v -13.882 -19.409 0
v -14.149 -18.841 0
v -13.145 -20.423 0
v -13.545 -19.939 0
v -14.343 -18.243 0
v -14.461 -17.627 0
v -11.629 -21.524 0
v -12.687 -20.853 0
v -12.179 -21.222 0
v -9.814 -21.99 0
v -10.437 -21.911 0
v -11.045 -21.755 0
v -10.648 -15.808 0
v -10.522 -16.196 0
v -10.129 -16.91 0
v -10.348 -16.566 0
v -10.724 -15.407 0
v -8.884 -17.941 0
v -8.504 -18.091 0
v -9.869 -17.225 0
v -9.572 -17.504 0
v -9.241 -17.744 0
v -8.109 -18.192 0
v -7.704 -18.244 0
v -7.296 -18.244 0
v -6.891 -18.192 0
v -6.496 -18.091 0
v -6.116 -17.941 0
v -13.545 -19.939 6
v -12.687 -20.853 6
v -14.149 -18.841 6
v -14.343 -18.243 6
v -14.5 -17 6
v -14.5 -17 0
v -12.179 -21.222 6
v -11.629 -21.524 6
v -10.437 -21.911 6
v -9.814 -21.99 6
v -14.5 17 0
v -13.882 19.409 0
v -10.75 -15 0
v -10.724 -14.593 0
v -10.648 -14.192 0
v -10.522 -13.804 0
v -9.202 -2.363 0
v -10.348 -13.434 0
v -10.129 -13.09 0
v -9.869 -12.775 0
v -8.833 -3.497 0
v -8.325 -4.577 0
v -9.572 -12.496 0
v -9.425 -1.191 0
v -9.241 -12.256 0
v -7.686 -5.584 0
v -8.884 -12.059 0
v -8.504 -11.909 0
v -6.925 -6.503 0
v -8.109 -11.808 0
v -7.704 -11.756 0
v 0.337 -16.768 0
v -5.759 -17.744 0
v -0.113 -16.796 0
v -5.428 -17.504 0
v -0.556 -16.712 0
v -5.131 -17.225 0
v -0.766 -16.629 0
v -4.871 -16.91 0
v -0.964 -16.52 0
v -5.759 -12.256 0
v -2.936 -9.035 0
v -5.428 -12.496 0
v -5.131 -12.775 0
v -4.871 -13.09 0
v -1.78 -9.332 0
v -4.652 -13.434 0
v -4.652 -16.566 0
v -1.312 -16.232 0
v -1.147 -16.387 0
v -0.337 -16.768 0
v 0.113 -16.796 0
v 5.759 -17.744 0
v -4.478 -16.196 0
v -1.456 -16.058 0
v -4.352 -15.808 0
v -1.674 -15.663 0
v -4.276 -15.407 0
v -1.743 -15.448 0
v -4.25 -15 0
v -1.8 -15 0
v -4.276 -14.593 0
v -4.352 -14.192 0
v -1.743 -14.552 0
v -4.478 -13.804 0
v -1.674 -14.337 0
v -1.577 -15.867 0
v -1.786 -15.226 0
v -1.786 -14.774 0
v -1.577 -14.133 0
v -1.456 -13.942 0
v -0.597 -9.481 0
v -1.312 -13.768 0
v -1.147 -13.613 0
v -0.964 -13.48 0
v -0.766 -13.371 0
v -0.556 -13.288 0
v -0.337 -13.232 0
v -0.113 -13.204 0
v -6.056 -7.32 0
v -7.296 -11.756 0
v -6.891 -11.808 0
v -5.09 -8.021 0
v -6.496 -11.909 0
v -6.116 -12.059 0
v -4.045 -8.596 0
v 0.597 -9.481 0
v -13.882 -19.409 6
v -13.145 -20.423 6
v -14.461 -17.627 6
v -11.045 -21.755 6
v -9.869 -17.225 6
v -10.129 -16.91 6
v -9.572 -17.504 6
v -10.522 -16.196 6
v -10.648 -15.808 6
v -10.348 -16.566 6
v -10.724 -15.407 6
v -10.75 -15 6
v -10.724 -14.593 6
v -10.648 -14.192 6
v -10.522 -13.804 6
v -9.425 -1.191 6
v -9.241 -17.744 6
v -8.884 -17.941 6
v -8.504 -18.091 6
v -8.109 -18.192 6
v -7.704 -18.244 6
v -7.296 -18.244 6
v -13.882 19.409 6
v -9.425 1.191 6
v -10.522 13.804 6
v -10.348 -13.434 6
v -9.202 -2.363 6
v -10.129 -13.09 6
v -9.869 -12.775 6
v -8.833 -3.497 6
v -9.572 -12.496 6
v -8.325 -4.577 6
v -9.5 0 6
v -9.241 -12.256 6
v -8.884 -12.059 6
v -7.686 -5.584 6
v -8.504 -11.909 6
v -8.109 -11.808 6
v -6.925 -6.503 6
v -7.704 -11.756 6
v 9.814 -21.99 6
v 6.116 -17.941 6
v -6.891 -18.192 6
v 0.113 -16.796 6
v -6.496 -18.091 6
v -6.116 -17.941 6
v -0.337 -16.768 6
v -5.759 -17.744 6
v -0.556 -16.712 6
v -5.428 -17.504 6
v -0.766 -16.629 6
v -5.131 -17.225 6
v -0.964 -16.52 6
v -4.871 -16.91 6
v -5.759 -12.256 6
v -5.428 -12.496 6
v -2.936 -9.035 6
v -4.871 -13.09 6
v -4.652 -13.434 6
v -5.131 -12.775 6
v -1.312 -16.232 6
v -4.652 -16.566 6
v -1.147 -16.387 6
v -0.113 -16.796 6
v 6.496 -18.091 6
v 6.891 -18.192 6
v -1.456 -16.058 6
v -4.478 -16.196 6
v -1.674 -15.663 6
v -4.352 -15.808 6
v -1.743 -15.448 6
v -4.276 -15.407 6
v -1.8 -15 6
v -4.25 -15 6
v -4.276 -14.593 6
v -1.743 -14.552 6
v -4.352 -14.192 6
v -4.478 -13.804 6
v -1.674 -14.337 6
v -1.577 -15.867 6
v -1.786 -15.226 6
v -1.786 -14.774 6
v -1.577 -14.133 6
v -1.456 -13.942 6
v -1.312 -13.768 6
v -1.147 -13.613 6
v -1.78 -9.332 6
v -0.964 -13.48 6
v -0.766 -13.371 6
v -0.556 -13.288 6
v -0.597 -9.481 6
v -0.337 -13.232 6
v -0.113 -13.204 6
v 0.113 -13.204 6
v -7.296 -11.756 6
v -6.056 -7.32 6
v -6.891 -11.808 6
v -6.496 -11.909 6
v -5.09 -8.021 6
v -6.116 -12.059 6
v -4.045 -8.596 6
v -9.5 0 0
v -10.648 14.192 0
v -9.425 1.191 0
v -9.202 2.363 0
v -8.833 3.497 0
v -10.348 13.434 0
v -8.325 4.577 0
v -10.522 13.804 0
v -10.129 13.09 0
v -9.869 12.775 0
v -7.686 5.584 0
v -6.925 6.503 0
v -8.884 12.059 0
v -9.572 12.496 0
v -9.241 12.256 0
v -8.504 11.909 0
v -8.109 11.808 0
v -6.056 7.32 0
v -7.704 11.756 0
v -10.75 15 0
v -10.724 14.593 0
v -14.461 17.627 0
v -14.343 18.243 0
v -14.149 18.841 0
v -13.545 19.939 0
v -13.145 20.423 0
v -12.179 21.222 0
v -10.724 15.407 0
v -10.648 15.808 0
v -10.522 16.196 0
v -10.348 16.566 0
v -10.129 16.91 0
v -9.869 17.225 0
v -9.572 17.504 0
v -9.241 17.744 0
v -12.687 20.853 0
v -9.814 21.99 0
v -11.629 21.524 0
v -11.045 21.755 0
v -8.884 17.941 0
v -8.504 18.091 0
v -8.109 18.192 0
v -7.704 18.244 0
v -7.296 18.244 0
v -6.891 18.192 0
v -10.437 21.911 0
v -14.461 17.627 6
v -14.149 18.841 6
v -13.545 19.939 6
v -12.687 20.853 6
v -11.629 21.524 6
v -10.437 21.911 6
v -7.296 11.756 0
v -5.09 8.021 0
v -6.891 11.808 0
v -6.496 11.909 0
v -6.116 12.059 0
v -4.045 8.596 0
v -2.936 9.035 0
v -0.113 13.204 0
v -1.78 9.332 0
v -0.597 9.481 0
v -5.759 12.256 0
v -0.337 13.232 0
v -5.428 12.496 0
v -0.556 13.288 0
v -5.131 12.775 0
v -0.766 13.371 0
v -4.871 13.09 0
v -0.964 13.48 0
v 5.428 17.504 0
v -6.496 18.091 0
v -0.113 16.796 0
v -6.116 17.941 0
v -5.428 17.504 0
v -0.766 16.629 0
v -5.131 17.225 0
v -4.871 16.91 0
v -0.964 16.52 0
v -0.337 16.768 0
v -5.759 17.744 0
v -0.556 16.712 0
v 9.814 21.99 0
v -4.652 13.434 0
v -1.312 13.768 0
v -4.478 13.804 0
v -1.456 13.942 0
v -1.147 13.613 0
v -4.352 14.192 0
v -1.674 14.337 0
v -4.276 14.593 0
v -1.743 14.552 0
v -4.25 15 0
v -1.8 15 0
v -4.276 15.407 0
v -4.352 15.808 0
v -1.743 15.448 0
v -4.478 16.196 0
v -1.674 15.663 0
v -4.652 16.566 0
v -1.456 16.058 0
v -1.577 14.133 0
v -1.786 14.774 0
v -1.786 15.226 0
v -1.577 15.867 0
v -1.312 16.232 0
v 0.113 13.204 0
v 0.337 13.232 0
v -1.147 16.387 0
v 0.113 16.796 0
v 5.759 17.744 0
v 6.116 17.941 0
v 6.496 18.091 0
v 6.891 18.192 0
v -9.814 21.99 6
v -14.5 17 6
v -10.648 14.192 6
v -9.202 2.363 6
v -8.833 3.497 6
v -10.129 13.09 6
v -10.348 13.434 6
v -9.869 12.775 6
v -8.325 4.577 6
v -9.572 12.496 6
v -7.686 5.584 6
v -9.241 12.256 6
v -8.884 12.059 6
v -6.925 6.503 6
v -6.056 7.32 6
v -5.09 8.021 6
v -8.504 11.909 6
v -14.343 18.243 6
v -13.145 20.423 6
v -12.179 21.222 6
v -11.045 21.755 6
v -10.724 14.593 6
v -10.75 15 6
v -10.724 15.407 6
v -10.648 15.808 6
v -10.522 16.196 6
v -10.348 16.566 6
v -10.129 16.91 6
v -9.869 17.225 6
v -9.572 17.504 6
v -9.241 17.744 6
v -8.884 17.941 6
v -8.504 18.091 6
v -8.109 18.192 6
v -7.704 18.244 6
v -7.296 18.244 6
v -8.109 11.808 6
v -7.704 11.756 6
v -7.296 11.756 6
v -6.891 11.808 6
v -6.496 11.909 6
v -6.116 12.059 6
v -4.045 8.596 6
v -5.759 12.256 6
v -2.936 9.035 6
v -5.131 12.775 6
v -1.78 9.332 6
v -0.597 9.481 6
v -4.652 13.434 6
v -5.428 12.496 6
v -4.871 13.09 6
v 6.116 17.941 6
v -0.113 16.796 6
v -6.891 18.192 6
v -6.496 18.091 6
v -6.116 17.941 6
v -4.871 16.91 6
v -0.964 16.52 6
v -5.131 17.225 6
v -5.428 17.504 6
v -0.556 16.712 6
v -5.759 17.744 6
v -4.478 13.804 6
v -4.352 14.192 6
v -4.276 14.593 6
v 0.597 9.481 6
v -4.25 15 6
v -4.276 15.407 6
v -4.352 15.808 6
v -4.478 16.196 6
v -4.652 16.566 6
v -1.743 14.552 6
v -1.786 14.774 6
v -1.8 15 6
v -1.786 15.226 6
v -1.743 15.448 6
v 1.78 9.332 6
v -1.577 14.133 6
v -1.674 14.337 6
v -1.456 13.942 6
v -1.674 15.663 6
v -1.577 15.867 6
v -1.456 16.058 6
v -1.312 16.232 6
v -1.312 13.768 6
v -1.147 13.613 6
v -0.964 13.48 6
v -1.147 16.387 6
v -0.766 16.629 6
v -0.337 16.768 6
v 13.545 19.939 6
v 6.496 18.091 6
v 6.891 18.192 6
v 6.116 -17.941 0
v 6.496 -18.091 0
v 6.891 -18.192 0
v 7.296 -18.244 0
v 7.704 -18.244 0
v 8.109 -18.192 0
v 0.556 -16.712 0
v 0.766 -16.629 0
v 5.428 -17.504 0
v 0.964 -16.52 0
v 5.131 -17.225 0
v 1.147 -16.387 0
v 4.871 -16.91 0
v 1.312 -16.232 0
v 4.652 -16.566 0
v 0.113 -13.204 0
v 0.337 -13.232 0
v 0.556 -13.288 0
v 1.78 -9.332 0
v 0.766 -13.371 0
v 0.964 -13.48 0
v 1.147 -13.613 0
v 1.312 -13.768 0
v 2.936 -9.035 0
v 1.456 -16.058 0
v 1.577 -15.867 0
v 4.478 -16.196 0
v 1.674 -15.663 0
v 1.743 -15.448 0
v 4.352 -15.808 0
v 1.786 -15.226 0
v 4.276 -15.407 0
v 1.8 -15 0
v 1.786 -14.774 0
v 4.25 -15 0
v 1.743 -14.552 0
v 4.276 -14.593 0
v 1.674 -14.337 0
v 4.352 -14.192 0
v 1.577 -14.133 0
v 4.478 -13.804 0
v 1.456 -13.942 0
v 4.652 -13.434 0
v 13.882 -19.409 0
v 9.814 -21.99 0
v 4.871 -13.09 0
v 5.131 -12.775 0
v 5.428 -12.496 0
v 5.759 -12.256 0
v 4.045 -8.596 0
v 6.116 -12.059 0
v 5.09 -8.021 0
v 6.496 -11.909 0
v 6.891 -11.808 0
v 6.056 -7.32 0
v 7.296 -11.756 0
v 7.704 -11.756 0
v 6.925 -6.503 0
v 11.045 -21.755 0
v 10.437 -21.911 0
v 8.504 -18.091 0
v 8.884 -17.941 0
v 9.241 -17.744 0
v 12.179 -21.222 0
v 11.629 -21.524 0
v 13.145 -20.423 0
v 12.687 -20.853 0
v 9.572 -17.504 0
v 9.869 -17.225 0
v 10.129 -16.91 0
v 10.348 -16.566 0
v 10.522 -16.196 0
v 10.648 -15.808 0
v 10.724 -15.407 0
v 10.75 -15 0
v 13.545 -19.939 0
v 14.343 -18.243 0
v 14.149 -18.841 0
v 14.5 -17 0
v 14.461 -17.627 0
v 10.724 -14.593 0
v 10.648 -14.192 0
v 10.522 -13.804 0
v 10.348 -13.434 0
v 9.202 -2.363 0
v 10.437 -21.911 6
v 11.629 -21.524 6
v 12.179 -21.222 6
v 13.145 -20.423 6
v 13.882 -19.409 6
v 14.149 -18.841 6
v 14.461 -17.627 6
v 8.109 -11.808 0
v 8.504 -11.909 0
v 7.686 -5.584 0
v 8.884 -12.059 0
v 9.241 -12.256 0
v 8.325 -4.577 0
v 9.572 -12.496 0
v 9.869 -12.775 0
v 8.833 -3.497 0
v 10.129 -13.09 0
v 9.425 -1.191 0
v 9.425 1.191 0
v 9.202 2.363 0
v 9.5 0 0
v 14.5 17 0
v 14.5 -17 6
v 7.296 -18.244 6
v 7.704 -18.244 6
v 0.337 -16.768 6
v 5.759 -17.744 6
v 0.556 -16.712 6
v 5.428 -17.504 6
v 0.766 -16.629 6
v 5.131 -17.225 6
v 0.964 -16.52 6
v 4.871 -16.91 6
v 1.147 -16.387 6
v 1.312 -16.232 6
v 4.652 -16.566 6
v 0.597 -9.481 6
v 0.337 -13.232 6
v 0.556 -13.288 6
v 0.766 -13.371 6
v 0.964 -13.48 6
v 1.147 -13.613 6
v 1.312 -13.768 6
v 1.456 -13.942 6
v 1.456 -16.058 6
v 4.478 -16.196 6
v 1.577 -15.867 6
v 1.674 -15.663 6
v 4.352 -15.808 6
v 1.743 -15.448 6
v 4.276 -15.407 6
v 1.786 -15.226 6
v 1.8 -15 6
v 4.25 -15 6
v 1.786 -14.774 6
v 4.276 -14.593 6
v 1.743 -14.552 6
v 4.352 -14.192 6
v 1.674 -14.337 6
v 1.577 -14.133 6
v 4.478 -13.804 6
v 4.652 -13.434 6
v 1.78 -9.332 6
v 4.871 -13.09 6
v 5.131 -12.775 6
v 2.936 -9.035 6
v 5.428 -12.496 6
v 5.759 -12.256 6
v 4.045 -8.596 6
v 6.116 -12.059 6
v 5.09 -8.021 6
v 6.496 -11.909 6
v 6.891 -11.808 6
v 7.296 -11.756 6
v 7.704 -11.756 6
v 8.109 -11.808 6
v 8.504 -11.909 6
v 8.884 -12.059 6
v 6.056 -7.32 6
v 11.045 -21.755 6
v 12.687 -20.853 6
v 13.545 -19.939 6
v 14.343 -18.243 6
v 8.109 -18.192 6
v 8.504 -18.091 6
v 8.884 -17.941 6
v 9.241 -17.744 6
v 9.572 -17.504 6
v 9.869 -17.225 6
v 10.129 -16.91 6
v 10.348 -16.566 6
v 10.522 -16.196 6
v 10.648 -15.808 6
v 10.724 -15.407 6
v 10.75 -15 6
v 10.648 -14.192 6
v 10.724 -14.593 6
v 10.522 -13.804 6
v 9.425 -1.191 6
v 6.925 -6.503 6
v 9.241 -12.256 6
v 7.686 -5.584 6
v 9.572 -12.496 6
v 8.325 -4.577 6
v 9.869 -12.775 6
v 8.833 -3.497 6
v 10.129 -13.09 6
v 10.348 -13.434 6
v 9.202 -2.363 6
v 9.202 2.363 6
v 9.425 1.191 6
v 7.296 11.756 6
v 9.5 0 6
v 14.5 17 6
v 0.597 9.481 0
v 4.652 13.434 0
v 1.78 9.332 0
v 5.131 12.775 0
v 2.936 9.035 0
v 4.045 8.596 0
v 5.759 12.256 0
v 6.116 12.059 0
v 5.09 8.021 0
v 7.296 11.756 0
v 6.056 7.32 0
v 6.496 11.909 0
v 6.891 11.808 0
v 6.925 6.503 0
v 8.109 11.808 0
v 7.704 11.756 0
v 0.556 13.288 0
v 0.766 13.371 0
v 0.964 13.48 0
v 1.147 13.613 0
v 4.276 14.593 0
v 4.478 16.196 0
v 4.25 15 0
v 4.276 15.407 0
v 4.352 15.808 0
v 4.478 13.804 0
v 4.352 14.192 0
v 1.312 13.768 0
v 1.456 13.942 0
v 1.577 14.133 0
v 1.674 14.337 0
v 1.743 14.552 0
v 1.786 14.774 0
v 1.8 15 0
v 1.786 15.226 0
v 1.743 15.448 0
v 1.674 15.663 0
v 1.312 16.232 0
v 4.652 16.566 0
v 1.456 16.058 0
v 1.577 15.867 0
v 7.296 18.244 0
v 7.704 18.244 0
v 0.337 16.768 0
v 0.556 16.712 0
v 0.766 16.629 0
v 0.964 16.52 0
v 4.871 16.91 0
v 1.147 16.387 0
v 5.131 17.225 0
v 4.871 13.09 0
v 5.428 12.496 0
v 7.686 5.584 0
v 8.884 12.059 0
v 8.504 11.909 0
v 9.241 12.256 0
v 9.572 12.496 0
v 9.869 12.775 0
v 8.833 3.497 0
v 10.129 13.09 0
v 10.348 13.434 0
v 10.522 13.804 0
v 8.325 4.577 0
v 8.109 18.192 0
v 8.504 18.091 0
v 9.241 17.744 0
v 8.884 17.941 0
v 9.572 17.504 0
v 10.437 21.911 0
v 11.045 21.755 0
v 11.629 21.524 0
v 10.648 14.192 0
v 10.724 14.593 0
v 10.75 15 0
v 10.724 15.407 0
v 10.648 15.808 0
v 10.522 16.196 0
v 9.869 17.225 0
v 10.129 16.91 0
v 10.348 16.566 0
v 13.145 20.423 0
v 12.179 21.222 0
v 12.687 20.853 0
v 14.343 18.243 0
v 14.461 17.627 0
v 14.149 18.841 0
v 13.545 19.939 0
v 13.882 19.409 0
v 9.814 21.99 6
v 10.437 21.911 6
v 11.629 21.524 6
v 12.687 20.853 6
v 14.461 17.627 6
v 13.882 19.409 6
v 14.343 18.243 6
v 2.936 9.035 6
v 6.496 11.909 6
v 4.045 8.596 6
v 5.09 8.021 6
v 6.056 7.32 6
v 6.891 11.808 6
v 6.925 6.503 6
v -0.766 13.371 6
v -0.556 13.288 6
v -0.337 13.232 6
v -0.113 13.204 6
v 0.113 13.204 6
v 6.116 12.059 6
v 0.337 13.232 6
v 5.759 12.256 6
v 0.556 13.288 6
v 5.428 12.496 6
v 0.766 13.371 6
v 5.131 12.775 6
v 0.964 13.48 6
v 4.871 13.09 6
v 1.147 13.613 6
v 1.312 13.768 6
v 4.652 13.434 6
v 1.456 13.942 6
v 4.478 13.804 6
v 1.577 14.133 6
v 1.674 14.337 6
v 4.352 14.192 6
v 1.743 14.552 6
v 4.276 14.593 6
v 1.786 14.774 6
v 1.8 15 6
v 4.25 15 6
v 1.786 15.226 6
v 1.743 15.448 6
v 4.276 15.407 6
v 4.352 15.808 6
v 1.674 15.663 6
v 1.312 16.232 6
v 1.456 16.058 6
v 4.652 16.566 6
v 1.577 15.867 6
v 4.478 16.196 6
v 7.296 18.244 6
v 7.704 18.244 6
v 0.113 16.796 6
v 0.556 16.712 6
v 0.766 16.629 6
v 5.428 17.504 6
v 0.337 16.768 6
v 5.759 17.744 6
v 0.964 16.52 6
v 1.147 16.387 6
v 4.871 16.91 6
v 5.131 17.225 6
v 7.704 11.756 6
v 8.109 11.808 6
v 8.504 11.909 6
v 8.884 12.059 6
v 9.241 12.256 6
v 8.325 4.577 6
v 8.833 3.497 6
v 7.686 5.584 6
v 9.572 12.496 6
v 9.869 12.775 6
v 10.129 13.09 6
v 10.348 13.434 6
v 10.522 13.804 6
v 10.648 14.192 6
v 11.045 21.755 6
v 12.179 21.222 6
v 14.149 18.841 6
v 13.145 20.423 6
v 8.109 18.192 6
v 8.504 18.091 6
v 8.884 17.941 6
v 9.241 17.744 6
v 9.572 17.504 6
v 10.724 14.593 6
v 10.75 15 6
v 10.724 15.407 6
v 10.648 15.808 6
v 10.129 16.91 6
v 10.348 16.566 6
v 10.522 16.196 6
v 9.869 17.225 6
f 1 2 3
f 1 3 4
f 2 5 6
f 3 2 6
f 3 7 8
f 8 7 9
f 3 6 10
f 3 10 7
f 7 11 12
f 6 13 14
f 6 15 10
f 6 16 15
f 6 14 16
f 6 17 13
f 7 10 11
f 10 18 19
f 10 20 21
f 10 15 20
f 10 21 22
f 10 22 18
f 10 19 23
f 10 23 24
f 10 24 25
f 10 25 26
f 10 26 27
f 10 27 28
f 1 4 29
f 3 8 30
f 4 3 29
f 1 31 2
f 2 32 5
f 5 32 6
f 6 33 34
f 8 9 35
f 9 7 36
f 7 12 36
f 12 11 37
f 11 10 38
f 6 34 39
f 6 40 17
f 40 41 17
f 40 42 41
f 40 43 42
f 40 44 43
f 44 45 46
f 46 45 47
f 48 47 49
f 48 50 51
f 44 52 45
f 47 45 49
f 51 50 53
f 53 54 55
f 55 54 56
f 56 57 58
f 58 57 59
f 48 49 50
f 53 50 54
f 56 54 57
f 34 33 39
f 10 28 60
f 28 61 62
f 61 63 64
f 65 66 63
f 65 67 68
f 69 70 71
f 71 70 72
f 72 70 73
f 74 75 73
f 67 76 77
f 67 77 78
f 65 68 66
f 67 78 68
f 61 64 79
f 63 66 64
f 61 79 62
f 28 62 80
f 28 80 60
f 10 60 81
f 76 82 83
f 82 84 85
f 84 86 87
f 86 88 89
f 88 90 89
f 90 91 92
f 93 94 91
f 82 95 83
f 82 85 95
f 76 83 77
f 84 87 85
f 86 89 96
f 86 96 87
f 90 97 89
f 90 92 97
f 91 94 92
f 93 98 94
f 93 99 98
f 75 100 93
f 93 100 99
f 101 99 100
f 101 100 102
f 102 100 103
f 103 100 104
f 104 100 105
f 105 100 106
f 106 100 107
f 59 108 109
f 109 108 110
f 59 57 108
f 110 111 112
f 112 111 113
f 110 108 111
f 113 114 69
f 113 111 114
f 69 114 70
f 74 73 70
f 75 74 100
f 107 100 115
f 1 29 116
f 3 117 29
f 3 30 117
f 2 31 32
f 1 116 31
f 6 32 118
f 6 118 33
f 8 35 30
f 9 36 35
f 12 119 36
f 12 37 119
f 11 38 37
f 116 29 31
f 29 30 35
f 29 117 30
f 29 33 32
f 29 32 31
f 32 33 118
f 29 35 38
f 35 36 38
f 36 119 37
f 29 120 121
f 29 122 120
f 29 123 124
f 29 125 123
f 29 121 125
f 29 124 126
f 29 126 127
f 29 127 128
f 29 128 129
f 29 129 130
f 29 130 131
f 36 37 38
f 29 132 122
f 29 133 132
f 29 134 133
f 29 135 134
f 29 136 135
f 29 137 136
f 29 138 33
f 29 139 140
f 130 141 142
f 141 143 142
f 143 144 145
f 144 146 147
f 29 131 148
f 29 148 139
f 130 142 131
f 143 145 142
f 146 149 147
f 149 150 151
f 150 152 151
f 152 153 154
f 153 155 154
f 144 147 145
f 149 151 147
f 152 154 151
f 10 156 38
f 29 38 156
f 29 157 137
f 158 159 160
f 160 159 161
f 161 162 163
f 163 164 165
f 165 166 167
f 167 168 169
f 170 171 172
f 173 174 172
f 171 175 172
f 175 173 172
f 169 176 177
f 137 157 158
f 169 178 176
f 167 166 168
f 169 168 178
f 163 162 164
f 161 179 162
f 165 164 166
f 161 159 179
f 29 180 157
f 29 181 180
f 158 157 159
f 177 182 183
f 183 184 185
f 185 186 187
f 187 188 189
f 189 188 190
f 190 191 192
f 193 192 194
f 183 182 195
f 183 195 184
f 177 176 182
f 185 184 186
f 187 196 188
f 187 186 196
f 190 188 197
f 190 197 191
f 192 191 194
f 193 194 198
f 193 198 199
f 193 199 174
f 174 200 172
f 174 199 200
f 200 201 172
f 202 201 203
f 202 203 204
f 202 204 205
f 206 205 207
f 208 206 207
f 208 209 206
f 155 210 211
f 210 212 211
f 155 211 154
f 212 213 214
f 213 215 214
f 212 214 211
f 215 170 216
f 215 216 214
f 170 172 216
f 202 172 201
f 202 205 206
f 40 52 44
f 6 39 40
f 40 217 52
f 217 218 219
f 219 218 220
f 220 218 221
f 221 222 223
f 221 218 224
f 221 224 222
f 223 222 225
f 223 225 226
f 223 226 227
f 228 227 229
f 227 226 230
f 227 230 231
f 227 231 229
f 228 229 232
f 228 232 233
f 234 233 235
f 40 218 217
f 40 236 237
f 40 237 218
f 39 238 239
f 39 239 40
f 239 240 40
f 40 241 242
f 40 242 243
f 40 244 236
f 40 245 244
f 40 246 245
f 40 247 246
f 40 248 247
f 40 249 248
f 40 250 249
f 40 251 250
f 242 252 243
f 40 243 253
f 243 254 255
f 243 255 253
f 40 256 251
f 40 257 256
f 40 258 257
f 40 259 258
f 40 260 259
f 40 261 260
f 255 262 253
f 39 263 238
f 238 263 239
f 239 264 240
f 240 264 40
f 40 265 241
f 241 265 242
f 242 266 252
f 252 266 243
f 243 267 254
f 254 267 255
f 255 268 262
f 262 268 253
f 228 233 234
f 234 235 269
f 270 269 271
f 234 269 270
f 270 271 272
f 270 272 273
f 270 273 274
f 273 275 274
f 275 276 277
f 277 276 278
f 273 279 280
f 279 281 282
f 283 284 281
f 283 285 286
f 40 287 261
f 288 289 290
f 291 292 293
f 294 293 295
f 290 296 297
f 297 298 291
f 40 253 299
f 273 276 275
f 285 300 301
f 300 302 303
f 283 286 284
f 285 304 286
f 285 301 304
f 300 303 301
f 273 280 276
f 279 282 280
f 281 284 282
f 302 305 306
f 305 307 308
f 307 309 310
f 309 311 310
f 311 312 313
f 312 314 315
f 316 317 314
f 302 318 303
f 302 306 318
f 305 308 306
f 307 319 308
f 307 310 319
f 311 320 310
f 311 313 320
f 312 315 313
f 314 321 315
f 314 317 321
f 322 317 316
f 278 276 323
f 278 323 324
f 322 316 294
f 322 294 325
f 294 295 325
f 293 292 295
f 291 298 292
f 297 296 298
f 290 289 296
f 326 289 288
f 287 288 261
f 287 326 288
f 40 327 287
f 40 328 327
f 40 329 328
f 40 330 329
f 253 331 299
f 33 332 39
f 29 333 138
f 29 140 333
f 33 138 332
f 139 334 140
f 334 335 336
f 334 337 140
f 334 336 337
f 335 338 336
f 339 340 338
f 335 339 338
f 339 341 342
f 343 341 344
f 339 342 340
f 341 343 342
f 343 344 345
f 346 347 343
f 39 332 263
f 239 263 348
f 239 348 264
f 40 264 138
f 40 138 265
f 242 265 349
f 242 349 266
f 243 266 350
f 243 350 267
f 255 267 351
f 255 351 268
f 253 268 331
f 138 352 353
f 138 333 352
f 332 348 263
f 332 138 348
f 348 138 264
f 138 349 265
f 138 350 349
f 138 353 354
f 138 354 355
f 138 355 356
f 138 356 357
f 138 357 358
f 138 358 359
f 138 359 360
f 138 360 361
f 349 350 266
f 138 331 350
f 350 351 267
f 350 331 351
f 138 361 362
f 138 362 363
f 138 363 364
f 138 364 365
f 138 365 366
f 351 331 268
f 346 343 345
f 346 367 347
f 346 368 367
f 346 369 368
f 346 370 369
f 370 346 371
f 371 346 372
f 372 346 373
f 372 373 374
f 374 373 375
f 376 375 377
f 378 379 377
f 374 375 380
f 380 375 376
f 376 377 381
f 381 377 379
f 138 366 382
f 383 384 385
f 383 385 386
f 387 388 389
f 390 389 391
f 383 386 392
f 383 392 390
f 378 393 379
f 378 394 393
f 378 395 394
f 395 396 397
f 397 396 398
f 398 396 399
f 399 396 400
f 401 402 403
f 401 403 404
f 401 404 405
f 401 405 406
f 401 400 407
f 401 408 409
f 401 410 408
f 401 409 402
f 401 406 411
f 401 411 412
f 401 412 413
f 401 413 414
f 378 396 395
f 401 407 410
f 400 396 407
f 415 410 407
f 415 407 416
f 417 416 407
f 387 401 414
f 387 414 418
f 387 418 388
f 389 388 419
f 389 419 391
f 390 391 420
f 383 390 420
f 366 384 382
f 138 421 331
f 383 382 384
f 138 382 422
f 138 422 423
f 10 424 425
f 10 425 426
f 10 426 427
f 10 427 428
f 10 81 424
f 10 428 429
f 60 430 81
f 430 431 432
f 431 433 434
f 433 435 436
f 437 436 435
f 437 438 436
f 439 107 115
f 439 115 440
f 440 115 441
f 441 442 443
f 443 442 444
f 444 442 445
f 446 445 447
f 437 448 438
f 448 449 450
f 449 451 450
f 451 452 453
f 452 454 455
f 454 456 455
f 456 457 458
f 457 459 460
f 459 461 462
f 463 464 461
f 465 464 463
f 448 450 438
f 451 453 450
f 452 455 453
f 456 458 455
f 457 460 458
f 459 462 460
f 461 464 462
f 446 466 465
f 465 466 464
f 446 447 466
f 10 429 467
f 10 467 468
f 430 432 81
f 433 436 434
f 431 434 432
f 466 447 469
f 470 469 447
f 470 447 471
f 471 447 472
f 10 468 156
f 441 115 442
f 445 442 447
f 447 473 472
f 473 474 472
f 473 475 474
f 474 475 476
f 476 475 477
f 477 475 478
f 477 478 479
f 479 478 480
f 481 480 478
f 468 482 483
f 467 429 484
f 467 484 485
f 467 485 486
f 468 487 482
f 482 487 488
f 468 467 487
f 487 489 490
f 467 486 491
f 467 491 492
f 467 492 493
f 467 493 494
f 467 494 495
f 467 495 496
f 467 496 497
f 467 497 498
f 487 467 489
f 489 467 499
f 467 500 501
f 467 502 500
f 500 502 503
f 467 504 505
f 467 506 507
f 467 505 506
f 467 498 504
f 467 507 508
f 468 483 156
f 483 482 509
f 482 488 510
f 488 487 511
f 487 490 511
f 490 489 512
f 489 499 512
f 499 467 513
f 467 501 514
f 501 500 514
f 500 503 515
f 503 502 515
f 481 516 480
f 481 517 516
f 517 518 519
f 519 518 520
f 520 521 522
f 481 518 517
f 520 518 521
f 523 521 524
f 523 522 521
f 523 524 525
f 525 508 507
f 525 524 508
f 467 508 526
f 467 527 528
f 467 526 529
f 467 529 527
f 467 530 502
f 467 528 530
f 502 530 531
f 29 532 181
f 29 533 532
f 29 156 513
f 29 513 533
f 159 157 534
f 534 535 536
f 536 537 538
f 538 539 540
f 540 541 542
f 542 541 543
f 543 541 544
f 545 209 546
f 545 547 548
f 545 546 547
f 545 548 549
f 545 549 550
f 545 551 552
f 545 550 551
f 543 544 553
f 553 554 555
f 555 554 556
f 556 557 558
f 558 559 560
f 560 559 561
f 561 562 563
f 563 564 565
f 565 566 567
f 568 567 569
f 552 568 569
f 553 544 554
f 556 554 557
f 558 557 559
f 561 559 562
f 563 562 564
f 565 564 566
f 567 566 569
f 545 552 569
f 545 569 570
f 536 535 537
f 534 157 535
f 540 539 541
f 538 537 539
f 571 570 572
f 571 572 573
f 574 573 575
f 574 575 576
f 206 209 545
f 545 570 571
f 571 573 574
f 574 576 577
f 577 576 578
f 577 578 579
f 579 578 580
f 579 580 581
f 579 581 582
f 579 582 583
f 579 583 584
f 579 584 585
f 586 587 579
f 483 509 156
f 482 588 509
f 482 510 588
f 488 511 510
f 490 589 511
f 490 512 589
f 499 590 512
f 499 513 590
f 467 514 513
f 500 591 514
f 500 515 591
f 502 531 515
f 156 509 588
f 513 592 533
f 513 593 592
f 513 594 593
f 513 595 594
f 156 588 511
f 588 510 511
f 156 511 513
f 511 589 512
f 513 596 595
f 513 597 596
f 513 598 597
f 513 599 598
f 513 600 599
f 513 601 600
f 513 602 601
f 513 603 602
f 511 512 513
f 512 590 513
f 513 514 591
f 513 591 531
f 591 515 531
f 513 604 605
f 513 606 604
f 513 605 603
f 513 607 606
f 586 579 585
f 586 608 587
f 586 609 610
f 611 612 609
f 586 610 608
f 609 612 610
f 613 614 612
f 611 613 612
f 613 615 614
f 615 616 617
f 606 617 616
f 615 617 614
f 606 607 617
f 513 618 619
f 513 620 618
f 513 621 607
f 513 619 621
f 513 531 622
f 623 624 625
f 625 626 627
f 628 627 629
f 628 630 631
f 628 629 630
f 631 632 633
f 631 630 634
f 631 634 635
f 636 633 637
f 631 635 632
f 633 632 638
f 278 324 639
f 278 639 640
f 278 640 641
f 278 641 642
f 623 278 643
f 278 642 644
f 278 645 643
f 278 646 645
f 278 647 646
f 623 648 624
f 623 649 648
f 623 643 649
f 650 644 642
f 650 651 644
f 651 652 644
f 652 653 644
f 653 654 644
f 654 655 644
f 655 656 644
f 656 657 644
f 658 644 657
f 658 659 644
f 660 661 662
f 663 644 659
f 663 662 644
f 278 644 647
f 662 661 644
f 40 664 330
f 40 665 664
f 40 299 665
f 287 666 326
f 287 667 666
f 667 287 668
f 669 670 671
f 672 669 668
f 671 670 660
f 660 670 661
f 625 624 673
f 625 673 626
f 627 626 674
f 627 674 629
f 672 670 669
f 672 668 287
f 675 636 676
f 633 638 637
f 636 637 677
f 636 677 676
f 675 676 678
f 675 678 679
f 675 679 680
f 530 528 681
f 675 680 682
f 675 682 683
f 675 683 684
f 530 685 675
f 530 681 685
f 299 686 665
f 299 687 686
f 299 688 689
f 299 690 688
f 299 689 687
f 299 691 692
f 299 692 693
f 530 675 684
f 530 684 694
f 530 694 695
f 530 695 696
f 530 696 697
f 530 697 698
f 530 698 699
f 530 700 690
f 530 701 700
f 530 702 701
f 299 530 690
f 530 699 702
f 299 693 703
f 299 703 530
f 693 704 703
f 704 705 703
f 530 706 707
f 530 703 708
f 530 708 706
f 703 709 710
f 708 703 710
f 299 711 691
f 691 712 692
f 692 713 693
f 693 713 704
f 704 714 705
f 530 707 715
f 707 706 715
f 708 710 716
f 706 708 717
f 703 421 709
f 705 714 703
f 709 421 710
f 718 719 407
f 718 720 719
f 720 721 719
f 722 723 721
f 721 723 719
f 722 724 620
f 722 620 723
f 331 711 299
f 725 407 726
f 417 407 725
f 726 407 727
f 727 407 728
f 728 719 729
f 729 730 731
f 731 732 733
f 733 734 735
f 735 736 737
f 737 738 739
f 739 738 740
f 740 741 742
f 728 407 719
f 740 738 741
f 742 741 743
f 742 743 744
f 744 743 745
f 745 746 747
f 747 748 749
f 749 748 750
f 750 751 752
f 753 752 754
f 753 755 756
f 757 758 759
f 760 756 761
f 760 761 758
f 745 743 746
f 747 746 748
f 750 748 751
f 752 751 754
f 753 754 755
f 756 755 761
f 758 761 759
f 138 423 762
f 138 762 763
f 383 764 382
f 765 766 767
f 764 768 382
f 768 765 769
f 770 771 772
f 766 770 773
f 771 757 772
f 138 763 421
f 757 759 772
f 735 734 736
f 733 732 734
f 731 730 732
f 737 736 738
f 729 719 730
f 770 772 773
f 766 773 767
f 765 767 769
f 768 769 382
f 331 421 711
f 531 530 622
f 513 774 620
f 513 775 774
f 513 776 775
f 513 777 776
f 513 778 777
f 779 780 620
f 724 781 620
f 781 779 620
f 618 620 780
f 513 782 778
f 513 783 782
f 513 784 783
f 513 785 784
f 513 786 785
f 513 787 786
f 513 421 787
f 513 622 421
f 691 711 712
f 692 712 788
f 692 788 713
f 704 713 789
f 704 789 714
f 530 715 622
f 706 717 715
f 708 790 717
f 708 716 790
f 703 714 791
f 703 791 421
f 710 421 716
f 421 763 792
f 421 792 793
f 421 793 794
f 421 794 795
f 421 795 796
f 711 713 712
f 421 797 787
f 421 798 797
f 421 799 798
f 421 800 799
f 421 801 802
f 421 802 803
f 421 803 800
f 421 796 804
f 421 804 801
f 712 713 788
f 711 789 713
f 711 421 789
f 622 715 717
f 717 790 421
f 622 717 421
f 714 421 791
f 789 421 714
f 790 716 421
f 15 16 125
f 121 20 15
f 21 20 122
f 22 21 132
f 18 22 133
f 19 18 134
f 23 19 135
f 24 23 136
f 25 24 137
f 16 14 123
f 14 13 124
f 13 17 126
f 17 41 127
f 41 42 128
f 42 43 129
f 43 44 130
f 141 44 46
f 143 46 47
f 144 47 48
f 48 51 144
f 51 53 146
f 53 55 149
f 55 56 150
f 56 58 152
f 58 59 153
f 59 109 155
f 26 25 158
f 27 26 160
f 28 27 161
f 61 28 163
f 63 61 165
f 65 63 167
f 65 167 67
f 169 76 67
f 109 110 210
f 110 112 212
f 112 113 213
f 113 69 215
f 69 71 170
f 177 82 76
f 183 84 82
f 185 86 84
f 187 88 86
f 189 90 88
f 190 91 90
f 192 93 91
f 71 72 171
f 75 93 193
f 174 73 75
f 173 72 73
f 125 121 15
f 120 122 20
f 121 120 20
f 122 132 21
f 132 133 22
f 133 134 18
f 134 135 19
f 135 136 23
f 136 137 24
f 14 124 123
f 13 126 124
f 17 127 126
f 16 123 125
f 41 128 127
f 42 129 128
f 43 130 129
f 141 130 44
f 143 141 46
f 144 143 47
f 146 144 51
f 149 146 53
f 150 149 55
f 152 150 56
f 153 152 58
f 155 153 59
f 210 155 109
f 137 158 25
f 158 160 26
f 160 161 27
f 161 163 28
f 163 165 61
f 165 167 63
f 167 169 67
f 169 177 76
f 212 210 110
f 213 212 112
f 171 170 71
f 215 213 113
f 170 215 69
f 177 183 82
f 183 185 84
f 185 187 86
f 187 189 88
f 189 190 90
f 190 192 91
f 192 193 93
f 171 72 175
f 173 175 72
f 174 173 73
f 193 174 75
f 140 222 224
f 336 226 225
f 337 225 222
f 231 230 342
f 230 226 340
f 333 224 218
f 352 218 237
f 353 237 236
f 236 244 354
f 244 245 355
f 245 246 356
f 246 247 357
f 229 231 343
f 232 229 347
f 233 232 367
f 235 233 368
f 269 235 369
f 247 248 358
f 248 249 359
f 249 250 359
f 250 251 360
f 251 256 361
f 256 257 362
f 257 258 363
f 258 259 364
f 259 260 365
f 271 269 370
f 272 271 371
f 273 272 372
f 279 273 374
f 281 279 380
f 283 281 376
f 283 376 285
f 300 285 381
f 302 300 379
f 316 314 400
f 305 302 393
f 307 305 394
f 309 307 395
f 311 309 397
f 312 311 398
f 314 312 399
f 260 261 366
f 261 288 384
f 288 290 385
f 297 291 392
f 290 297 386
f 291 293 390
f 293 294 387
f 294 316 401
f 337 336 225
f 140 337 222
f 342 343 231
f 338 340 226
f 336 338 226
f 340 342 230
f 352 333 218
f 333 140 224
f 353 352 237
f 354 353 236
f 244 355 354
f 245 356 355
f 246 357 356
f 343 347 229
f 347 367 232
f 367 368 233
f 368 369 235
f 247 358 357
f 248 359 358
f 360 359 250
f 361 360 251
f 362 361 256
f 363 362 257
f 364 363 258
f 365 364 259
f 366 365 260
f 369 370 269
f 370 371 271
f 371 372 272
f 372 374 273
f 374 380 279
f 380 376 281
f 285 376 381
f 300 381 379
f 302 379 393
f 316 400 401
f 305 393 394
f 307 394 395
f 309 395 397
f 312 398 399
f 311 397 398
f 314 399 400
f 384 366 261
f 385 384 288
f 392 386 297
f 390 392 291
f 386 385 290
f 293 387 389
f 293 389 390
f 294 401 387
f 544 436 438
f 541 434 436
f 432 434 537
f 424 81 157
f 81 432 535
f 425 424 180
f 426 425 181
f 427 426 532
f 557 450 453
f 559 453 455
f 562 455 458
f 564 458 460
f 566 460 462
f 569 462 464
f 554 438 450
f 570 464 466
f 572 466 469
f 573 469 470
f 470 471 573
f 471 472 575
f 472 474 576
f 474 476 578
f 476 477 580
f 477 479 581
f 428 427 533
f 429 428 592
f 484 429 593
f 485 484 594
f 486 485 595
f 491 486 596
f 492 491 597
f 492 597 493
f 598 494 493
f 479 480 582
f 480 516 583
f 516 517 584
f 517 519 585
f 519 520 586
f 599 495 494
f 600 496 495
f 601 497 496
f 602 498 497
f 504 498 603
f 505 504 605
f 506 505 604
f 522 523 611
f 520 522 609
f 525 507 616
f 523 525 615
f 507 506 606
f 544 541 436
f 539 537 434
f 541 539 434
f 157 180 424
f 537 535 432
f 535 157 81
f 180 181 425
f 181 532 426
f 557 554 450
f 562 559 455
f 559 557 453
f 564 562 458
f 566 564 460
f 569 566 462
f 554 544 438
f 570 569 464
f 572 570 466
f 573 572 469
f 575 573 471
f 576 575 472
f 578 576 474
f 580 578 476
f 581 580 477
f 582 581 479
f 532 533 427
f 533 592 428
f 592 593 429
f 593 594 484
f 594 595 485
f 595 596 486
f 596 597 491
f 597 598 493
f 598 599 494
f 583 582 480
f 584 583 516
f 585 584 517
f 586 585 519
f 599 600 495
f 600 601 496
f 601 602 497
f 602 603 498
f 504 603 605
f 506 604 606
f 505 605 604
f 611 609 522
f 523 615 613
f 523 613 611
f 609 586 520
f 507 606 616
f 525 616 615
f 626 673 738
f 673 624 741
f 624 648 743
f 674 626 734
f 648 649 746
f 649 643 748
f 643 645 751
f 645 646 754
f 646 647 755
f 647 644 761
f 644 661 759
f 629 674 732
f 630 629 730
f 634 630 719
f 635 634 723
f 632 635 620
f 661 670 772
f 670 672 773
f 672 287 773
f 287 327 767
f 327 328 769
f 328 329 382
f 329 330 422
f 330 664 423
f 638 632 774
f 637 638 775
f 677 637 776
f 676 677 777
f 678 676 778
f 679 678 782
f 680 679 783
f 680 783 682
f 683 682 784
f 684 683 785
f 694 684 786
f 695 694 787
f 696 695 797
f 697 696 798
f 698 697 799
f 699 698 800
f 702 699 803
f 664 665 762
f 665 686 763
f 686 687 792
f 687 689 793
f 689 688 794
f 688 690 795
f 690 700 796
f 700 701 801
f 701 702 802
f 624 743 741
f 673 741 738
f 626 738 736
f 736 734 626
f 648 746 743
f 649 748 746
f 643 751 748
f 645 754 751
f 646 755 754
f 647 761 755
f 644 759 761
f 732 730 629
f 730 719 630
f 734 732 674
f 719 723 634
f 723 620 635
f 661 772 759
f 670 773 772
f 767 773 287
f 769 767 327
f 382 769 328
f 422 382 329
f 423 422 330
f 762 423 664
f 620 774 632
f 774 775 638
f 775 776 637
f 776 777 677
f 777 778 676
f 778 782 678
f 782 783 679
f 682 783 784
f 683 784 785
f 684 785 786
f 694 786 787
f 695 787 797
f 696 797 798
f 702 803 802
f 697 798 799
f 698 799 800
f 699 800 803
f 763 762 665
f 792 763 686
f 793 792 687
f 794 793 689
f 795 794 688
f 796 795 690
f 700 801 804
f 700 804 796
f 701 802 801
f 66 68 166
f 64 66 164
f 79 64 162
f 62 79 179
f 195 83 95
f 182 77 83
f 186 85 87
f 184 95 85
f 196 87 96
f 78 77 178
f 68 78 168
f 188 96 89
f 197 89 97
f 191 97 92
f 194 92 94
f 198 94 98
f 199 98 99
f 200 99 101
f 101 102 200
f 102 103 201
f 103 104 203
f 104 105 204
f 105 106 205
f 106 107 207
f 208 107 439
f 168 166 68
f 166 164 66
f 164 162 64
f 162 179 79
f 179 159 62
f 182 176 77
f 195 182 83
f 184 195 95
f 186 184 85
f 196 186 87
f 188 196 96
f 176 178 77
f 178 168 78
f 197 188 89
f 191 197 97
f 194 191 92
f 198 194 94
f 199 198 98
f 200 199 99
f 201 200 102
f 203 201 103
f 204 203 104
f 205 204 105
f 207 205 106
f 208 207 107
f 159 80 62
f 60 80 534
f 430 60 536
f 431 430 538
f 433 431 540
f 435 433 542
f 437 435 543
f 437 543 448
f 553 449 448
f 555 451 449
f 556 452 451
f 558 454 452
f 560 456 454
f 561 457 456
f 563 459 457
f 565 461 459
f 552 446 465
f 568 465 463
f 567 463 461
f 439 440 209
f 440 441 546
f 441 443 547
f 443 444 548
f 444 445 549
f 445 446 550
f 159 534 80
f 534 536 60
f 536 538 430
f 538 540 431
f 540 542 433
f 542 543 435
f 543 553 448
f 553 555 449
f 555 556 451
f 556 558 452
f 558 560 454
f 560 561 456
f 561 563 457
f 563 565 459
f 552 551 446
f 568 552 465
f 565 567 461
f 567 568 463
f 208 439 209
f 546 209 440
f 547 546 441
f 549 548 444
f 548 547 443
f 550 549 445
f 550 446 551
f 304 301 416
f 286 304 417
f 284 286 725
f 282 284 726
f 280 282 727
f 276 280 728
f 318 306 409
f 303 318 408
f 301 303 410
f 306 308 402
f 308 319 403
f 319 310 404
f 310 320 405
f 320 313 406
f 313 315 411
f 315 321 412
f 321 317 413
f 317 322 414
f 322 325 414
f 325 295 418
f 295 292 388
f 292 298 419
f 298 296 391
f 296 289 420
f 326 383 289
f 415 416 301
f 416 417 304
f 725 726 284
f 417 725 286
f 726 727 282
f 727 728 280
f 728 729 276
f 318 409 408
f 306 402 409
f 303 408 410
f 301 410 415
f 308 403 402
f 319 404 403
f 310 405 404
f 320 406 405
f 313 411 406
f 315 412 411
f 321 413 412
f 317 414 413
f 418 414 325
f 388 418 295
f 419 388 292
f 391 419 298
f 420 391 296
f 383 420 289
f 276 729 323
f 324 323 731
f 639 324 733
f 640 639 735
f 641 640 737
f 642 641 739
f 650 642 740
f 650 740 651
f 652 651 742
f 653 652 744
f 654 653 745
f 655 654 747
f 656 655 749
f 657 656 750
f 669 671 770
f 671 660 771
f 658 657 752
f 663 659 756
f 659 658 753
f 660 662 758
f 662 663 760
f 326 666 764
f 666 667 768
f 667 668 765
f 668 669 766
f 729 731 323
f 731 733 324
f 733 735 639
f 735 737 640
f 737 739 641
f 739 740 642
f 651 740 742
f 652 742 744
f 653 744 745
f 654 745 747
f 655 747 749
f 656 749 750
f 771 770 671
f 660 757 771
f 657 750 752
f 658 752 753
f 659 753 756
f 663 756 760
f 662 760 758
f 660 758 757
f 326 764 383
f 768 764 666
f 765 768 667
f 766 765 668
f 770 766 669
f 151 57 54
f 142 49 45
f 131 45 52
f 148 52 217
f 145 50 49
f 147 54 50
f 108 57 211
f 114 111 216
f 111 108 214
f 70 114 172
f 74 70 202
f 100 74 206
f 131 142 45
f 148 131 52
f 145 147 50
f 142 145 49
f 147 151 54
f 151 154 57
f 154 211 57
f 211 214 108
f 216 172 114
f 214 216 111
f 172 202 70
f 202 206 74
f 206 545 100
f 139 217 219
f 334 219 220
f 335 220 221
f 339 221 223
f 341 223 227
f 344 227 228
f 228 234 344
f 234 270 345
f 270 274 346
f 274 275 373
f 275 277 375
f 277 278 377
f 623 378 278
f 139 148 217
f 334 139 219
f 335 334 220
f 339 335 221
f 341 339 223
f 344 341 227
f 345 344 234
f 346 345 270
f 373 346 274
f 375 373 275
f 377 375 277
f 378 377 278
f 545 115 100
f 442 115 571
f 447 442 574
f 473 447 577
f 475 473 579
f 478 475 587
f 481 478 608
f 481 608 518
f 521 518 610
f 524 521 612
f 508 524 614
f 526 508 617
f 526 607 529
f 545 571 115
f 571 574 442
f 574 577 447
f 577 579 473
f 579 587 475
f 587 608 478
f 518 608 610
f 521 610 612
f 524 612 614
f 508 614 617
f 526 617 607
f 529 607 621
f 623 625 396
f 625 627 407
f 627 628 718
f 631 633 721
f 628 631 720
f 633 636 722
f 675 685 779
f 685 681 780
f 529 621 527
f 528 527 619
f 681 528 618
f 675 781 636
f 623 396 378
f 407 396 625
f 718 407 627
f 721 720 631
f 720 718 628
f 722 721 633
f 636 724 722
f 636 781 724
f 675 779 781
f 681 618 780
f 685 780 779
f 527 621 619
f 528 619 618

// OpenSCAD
$fn = 50;

difference() {
	union() {
		hull() {
			translate(v = [-9.5, 17.0, 0]) {
				cylinder(h = 6, r = 5);
			}
			translate(v = [9.5, 17.0, 0]) {
				cylinder(h = 6, r = 5);
			}
			translate(v = [-9.5, -17.0, 0]) {
				cylinder(h = 6, r = 5);
			}
			translate(v = [9.5, -17.0, 0]) {
				cylinder(h = 6, r = 5);
			}
		}
	}
	union() {
		translate(v = [-7.5, -15.0, 0]) {
			cylinder(h = 6, r = 3.25);
		}
		translate(v = [-7.5, 15.0, 0]) {
			cylinder(h = 6, r = 3.25);
		}
		translate(v = [7.5, -15.0, 0]) {
			cylinder(h = 6, r = 3.25);
		}
		translate(v = [7.5, 15.0, 0]) {
			cylinder(h = 6, r = 3.25);
		}
		translate(v = [0.0, -15.0, 0]) {
			cylinder(h = 6, r = 1.8);
		}
		translate(v = [0.0, 15.0, 0]) {
			cylinder(h = 6, r = 1.8);
		}
		cylinder(h = 6, r = 9.5);
	}
}
